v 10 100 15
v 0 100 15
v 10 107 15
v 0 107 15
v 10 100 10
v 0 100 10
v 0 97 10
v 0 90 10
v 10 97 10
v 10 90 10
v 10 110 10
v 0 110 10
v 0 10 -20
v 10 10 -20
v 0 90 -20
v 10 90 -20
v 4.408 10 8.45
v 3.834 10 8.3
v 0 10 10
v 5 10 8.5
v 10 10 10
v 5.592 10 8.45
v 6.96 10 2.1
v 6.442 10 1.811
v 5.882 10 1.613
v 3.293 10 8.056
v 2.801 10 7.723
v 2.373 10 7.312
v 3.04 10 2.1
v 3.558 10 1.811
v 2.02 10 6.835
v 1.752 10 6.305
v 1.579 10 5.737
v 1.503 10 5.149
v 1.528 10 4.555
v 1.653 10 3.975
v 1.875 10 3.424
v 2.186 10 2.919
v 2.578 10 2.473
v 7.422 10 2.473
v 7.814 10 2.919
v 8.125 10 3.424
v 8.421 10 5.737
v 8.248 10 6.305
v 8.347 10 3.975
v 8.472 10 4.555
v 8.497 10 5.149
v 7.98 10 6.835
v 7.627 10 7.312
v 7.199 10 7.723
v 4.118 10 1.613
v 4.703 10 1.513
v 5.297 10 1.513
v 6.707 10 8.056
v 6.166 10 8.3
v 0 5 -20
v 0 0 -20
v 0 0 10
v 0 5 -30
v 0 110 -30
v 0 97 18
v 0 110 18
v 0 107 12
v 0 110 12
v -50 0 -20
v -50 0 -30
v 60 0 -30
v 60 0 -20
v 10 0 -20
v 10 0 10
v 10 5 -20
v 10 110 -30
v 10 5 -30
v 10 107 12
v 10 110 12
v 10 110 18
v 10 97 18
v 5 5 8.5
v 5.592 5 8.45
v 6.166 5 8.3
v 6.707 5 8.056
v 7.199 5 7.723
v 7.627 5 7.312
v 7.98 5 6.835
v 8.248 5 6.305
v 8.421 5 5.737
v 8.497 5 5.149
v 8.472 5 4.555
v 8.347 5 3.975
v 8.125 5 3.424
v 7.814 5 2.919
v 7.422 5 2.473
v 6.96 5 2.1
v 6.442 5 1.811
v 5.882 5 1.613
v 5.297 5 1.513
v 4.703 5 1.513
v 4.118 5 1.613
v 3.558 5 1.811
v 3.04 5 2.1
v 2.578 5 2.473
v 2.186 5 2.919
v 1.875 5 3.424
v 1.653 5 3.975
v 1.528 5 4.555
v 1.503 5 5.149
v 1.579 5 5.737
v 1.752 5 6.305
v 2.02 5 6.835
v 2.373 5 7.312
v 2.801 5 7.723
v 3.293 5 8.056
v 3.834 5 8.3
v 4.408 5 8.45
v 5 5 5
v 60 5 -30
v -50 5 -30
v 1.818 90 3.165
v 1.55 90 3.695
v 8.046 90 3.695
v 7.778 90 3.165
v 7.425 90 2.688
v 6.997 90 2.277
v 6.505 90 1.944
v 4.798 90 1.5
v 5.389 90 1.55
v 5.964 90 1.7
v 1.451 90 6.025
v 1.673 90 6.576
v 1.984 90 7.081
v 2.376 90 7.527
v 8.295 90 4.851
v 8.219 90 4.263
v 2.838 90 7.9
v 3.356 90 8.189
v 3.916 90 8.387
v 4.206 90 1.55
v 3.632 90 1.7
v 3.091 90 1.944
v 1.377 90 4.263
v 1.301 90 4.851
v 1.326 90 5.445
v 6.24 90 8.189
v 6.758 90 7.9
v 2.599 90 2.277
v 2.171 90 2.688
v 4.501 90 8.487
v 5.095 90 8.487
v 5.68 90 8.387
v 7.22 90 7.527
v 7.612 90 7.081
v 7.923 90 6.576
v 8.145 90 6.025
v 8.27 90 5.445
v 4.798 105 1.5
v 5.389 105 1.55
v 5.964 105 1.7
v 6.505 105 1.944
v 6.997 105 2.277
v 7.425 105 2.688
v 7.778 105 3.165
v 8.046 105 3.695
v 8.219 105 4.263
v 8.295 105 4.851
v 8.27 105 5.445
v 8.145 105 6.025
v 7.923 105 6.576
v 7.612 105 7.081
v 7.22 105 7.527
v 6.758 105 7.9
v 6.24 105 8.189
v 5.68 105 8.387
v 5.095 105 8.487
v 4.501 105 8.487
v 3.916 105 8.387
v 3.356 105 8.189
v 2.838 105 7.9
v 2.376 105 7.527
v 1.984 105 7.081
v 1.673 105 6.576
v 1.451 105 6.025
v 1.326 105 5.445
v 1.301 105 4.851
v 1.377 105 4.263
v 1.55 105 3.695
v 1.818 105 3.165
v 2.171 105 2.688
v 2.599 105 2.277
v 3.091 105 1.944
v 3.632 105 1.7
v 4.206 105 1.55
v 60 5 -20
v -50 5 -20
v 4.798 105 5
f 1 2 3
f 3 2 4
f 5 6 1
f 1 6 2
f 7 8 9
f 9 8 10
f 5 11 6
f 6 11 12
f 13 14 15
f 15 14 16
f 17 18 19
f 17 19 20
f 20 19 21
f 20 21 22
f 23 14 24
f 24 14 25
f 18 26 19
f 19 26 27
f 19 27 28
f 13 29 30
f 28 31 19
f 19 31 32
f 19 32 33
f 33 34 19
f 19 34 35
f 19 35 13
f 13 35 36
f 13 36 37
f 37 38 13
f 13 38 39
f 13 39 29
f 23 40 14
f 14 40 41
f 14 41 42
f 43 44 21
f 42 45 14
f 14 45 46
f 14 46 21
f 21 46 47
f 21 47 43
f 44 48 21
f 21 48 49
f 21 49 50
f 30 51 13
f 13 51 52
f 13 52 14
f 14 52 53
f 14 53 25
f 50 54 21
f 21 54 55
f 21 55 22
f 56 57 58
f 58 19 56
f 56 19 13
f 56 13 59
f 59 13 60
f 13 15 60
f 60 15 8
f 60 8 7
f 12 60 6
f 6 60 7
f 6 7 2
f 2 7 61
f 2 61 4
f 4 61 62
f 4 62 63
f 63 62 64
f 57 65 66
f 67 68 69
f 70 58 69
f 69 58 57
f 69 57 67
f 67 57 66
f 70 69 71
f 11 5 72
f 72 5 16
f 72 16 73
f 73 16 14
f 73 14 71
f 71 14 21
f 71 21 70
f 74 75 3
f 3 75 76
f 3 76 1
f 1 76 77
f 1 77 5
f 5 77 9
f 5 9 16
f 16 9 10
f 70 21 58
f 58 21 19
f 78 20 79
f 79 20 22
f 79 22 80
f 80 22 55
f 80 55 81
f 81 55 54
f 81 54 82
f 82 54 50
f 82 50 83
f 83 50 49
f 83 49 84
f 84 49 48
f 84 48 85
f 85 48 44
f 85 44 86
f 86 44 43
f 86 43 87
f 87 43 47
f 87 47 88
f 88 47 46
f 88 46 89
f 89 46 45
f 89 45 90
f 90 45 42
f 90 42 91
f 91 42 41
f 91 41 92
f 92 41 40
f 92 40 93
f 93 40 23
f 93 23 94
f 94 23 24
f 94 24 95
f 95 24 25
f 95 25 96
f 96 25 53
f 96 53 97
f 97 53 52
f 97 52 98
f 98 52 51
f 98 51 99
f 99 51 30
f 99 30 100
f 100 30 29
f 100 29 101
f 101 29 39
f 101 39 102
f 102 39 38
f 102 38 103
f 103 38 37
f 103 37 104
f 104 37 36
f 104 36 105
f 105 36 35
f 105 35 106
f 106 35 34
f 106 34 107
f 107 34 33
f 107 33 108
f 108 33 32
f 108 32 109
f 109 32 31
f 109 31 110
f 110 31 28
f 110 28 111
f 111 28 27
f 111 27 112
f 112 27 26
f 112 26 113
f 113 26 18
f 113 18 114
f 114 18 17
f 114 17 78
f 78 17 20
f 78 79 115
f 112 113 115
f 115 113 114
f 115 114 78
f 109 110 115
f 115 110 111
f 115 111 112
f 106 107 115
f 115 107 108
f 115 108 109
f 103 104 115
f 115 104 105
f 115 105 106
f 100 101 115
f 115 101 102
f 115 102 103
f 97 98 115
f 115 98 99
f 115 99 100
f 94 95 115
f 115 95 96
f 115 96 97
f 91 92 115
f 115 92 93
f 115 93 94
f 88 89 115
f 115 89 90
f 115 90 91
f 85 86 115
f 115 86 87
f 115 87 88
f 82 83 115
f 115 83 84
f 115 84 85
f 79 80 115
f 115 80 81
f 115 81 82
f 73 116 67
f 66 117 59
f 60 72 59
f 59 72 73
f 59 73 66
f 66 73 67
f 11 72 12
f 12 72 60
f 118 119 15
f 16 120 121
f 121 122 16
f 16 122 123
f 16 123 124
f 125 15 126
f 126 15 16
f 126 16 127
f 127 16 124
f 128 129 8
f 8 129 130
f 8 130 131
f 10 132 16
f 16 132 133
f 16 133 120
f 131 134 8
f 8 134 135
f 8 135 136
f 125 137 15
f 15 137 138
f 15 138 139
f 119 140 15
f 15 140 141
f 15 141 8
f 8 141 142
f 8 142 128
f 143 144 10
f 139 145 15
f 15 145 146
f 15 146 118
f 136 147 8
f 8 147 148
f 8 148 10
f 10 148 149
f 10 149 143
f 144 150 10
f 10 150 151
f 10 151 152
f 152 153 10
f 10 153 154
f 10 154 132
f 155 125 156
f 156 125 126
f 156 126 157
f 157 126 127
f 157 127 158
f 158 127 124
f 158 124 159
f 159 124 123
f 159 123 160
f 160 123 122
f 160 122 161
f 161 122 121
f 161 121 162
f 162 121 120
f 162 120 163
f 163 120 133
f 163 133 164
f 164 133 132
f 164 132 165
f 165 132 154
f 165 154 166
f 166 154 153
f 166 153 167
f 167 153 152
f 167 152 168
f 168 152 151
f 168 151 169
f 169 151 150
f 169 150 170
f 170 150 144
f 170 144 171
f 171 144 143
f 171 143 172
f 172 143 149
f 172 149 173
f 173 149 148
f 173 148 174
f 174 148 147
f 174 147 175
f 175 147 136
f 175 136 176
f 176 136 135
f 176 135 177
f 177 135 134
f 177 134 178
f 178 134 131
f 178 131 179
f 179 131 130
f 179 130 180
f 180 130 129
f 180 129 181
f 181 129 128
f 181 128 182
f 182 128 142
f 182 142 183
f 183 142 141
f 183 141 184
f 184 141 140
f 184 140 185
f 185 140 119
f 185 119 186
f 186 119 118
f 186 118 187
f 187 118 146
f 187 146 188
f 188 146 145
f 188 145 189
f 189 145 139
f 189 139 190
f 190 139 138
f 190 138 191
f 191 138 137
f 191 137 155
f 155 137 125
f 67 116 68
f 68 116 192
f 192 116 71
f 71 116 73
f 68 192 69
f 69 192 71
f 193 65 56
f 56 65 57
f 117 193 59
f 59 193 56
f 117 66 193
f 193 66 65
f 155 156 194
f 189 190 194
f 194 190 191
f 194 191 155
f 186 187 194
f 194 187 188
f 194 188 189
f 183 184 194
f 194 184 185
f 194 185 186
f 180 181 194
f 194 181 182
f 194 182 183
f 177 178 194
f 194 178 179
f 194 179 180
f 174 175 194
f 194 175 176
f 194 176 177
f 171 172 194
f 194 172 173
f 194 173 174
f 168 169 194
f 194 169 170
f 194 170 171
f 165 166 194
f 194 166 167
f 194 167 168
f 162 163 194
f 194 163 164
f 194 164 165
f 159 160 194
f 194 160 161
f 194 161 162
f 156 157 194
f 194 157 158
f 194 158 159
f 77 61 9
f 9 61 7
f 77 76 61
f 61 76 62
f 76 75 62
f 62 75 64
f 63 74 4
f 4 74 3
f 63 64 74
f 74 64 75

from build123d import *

# Parameters (mm, degrees)
SKICA1_W                      = 10
SKICA1_H                      = 10
P_IDAT_VYSUNUT_M1_DEPTH       = 10
SKICA2_R                      = 3.5
ODEBRAT_VYSUNUT_M1_DEPTH      = 5
SKICA6_W                      = 10
SKICA6_H                      = 10
P_IDAT_VYSUNUT_M9_DEPTH       = 30
SKICA7_W                      = 10
SKICA7_H                      = 10
P_IDAT_VYSUNUT_M11_DEPTH      = 100
SKICA8_W                      = 10
SKICA8_H                      = 10
P_IDAT_VYSUNUT_M12_DEPTH      = 30
SKICA9_W                      = 10
SKICA9_H                      = 10
P_IDAT_VYSUNUT_M13_DEPTH      = 10
SKICA10_R                     = 3.5
ODEBRAT_VYSUNUT_M2_DEPTH      = 10
SKICA20_W                     = 10
SKICA20_H                     = 10
P_IDAT_VYSUNUT_M21_DEPTH      = 20
P_IDAT_VYSUNUT_M22_DEPTH      = 50
P_IDAT_VYSUNUT_M22_DEPTH_BACK = 60
SKICA11_W                     = 10
SKICA11_H                     = 5
SKICA10_2_R                   = 3.5
ODEBRAT_VYSUNUT_M7_DEPTH      = 15
SKICA21_W                     = 10
SKICA21_H                     = 3
P_IDAT_VYSUNUT_M24_DEPTH      = 8
SKICA22_W                     = 10
SKICA22_H                     = 3
P_IDAT_VYSUNUT_M25_DEPTH      = 10
SKICA23_W                     = 10
SKICA23_H                     = 3
P_IDAT_VYSUNUT_M26_DEPTH      = 3


with BuildPart() as part:
    # Skica1 → Přidat vysunutím1 (new body)
    with BuildSketch(Plane.XY):
        with Locations((5, 5)):
            Rectangle(SKICA1_W, SKICA1_H)
    extrude(amount=P_IDAT_VYSUNUT_M1_DEPTH)

    # Skica2 → Odebrat vysunutím1 (cut)
    with BuildSketch(Plane(origin=(0, 10, 0), x_dir=(1, 0, 0), z_dir=(0, 1, 0))):
        with Locations((5, -5)):
            Circle(SKICA2_R)
    extrude(amount=-ODEBRAT_VYSUNUT_M1_DEPTH, mode=Mode.SUBTRACT)

    # Skica6 → Přidat vysunutím9 (add)
    with BuildSketch(Plane(origin=(0, 0, 0), x_dir=(-1, 0, 0), z_dir=(0, 0, -1))):
        with Locations((-5, 5)):
            Rectangle(SKICA6_W, SKICA6_H)
    extrude(amount=P_IDAT_VYSUNUT_M9_DEPTH)

    # Skica7 → Přidat vysunutím11 (add)
    with BuildSketch(Plane(origin=(0, 10, 0), x_dir=(1, 0, 0), z_dir=(0, 1, 0))):
        with Locations((5, 25)):
            Rectangle(SKICA7_W, SKICA7_H)
    extrude(amount=P_IDAT_VYSUNUT_M11_DEPTH)

    # Skica8 → Přidat vysunutím12 (add)
    with BuildSketch(Plane.XY.offset(-20)):
        with Locations((5, 105)):
            Rectangle(SKICA8_W, SKICA8_H)
    extrude(amount=P_IDAT_VYSUNUT_M12_DEPTH)

    # Skica9 → Přidat vysunutím13 (add)
    with BuildSketch(Plane.XZ.offset(-100)):
        with Locations((5, 5)):
            Rectangle(SKICA9_W, SKICA9_H)
    extrude(amount=P_IDAT_VYSUNUT_M13_DEPTH)

    # Skica10 → Odebrat vysunutím2 (cut)
    with BuildSketch(Plane.XZ.offset(-90)):
        with Locations((4.797944497, 5)):
            Circle(SKICA10_R)
    extrude(amount=-ODEBRAT_VYSUNUT_M2_DEPTH, mode=Mode.SUBTRACT)

    # Skica20 → Přidat vysunutím21 (add)
    with BuildSketch(Plane(origin=(0, 0, 0), x_dir=(-1, 0, 0), z_dir=(0, 0, -1))):
        with Locations((-5, 95)):
            Rectangle(SKICA20_W, SKICA20_H)
    extrude(amount=P_IDAT_VYSUNUT_M21_DEPTH)

    # Skica11 → Přidat vysunutím22 (add, two sides: drawn at the far end of the back side and taken through both)
    with BuildSketch(Plane(origin=(10, 0, 0), x_dir=(0, 0, -1), z_dir=(1, 0, 0)).offset(-P_IDAT_VYSUNUT_M22_DEPTH_BACK)):
        with Locations((25, 2.5)):
            Rectangle(SKICA11_W, SKICA11_H)
    extrude(amount=P_IDAT_VYSUNUT_M22_DEPTH + P_IDAT_VYSUNUT_M22_DEPTH_BACK)

    # Skica10<2> → Odebrat vysunutím7 (cut)
    with BuildSketch(Plane.XZ.offset(-90)):
        with Locations((4.797944497, 5)):
            Circle(SKICA10_2_R)
    extrude(amount=-ODEBRAT_VYSUNUT_M7_DEPTH, mode=Mode.SUBTRACT)

    # Skica21 → Přidat vysunutím24 (add)
    with BuildSketch(Plane.XY.offset(10)):
        with Locations((5, 98.5)):
            Rectangle(SKICA21_W, SKICA21_H)
    extrude(amount=P_IDAT_VYSUNUT_M24_DEPTH)

    # Skica22 → Přidat vysunutím25 (add)
    with BuildSketch(Plane(origin=(0, 100, 0), x_dir=(1, 0, 0), z_dir=(0, 1, 0))):
        with Locations((5, -16.5)):
            Rectangle(SKICA22_W, SKICA22_H)
    extrude(amount=P_IDAT_VYSUNUT_M25_DEPTH)

    # Skica23 → Přidat vysunutím26 (add)
    with BuildSketch(Plane(origin=(0, 0, 15), x_dir=(-1, 0, 0), z_dir=(0, 0, -1))):
        with Locations((-5, 108.5)):
            Rectangle(SKICA23_W, SKICA23_H)
    extrude(amount=P_IDAT_VYSUNUT_M26_DEPTH)


solid = part.part
